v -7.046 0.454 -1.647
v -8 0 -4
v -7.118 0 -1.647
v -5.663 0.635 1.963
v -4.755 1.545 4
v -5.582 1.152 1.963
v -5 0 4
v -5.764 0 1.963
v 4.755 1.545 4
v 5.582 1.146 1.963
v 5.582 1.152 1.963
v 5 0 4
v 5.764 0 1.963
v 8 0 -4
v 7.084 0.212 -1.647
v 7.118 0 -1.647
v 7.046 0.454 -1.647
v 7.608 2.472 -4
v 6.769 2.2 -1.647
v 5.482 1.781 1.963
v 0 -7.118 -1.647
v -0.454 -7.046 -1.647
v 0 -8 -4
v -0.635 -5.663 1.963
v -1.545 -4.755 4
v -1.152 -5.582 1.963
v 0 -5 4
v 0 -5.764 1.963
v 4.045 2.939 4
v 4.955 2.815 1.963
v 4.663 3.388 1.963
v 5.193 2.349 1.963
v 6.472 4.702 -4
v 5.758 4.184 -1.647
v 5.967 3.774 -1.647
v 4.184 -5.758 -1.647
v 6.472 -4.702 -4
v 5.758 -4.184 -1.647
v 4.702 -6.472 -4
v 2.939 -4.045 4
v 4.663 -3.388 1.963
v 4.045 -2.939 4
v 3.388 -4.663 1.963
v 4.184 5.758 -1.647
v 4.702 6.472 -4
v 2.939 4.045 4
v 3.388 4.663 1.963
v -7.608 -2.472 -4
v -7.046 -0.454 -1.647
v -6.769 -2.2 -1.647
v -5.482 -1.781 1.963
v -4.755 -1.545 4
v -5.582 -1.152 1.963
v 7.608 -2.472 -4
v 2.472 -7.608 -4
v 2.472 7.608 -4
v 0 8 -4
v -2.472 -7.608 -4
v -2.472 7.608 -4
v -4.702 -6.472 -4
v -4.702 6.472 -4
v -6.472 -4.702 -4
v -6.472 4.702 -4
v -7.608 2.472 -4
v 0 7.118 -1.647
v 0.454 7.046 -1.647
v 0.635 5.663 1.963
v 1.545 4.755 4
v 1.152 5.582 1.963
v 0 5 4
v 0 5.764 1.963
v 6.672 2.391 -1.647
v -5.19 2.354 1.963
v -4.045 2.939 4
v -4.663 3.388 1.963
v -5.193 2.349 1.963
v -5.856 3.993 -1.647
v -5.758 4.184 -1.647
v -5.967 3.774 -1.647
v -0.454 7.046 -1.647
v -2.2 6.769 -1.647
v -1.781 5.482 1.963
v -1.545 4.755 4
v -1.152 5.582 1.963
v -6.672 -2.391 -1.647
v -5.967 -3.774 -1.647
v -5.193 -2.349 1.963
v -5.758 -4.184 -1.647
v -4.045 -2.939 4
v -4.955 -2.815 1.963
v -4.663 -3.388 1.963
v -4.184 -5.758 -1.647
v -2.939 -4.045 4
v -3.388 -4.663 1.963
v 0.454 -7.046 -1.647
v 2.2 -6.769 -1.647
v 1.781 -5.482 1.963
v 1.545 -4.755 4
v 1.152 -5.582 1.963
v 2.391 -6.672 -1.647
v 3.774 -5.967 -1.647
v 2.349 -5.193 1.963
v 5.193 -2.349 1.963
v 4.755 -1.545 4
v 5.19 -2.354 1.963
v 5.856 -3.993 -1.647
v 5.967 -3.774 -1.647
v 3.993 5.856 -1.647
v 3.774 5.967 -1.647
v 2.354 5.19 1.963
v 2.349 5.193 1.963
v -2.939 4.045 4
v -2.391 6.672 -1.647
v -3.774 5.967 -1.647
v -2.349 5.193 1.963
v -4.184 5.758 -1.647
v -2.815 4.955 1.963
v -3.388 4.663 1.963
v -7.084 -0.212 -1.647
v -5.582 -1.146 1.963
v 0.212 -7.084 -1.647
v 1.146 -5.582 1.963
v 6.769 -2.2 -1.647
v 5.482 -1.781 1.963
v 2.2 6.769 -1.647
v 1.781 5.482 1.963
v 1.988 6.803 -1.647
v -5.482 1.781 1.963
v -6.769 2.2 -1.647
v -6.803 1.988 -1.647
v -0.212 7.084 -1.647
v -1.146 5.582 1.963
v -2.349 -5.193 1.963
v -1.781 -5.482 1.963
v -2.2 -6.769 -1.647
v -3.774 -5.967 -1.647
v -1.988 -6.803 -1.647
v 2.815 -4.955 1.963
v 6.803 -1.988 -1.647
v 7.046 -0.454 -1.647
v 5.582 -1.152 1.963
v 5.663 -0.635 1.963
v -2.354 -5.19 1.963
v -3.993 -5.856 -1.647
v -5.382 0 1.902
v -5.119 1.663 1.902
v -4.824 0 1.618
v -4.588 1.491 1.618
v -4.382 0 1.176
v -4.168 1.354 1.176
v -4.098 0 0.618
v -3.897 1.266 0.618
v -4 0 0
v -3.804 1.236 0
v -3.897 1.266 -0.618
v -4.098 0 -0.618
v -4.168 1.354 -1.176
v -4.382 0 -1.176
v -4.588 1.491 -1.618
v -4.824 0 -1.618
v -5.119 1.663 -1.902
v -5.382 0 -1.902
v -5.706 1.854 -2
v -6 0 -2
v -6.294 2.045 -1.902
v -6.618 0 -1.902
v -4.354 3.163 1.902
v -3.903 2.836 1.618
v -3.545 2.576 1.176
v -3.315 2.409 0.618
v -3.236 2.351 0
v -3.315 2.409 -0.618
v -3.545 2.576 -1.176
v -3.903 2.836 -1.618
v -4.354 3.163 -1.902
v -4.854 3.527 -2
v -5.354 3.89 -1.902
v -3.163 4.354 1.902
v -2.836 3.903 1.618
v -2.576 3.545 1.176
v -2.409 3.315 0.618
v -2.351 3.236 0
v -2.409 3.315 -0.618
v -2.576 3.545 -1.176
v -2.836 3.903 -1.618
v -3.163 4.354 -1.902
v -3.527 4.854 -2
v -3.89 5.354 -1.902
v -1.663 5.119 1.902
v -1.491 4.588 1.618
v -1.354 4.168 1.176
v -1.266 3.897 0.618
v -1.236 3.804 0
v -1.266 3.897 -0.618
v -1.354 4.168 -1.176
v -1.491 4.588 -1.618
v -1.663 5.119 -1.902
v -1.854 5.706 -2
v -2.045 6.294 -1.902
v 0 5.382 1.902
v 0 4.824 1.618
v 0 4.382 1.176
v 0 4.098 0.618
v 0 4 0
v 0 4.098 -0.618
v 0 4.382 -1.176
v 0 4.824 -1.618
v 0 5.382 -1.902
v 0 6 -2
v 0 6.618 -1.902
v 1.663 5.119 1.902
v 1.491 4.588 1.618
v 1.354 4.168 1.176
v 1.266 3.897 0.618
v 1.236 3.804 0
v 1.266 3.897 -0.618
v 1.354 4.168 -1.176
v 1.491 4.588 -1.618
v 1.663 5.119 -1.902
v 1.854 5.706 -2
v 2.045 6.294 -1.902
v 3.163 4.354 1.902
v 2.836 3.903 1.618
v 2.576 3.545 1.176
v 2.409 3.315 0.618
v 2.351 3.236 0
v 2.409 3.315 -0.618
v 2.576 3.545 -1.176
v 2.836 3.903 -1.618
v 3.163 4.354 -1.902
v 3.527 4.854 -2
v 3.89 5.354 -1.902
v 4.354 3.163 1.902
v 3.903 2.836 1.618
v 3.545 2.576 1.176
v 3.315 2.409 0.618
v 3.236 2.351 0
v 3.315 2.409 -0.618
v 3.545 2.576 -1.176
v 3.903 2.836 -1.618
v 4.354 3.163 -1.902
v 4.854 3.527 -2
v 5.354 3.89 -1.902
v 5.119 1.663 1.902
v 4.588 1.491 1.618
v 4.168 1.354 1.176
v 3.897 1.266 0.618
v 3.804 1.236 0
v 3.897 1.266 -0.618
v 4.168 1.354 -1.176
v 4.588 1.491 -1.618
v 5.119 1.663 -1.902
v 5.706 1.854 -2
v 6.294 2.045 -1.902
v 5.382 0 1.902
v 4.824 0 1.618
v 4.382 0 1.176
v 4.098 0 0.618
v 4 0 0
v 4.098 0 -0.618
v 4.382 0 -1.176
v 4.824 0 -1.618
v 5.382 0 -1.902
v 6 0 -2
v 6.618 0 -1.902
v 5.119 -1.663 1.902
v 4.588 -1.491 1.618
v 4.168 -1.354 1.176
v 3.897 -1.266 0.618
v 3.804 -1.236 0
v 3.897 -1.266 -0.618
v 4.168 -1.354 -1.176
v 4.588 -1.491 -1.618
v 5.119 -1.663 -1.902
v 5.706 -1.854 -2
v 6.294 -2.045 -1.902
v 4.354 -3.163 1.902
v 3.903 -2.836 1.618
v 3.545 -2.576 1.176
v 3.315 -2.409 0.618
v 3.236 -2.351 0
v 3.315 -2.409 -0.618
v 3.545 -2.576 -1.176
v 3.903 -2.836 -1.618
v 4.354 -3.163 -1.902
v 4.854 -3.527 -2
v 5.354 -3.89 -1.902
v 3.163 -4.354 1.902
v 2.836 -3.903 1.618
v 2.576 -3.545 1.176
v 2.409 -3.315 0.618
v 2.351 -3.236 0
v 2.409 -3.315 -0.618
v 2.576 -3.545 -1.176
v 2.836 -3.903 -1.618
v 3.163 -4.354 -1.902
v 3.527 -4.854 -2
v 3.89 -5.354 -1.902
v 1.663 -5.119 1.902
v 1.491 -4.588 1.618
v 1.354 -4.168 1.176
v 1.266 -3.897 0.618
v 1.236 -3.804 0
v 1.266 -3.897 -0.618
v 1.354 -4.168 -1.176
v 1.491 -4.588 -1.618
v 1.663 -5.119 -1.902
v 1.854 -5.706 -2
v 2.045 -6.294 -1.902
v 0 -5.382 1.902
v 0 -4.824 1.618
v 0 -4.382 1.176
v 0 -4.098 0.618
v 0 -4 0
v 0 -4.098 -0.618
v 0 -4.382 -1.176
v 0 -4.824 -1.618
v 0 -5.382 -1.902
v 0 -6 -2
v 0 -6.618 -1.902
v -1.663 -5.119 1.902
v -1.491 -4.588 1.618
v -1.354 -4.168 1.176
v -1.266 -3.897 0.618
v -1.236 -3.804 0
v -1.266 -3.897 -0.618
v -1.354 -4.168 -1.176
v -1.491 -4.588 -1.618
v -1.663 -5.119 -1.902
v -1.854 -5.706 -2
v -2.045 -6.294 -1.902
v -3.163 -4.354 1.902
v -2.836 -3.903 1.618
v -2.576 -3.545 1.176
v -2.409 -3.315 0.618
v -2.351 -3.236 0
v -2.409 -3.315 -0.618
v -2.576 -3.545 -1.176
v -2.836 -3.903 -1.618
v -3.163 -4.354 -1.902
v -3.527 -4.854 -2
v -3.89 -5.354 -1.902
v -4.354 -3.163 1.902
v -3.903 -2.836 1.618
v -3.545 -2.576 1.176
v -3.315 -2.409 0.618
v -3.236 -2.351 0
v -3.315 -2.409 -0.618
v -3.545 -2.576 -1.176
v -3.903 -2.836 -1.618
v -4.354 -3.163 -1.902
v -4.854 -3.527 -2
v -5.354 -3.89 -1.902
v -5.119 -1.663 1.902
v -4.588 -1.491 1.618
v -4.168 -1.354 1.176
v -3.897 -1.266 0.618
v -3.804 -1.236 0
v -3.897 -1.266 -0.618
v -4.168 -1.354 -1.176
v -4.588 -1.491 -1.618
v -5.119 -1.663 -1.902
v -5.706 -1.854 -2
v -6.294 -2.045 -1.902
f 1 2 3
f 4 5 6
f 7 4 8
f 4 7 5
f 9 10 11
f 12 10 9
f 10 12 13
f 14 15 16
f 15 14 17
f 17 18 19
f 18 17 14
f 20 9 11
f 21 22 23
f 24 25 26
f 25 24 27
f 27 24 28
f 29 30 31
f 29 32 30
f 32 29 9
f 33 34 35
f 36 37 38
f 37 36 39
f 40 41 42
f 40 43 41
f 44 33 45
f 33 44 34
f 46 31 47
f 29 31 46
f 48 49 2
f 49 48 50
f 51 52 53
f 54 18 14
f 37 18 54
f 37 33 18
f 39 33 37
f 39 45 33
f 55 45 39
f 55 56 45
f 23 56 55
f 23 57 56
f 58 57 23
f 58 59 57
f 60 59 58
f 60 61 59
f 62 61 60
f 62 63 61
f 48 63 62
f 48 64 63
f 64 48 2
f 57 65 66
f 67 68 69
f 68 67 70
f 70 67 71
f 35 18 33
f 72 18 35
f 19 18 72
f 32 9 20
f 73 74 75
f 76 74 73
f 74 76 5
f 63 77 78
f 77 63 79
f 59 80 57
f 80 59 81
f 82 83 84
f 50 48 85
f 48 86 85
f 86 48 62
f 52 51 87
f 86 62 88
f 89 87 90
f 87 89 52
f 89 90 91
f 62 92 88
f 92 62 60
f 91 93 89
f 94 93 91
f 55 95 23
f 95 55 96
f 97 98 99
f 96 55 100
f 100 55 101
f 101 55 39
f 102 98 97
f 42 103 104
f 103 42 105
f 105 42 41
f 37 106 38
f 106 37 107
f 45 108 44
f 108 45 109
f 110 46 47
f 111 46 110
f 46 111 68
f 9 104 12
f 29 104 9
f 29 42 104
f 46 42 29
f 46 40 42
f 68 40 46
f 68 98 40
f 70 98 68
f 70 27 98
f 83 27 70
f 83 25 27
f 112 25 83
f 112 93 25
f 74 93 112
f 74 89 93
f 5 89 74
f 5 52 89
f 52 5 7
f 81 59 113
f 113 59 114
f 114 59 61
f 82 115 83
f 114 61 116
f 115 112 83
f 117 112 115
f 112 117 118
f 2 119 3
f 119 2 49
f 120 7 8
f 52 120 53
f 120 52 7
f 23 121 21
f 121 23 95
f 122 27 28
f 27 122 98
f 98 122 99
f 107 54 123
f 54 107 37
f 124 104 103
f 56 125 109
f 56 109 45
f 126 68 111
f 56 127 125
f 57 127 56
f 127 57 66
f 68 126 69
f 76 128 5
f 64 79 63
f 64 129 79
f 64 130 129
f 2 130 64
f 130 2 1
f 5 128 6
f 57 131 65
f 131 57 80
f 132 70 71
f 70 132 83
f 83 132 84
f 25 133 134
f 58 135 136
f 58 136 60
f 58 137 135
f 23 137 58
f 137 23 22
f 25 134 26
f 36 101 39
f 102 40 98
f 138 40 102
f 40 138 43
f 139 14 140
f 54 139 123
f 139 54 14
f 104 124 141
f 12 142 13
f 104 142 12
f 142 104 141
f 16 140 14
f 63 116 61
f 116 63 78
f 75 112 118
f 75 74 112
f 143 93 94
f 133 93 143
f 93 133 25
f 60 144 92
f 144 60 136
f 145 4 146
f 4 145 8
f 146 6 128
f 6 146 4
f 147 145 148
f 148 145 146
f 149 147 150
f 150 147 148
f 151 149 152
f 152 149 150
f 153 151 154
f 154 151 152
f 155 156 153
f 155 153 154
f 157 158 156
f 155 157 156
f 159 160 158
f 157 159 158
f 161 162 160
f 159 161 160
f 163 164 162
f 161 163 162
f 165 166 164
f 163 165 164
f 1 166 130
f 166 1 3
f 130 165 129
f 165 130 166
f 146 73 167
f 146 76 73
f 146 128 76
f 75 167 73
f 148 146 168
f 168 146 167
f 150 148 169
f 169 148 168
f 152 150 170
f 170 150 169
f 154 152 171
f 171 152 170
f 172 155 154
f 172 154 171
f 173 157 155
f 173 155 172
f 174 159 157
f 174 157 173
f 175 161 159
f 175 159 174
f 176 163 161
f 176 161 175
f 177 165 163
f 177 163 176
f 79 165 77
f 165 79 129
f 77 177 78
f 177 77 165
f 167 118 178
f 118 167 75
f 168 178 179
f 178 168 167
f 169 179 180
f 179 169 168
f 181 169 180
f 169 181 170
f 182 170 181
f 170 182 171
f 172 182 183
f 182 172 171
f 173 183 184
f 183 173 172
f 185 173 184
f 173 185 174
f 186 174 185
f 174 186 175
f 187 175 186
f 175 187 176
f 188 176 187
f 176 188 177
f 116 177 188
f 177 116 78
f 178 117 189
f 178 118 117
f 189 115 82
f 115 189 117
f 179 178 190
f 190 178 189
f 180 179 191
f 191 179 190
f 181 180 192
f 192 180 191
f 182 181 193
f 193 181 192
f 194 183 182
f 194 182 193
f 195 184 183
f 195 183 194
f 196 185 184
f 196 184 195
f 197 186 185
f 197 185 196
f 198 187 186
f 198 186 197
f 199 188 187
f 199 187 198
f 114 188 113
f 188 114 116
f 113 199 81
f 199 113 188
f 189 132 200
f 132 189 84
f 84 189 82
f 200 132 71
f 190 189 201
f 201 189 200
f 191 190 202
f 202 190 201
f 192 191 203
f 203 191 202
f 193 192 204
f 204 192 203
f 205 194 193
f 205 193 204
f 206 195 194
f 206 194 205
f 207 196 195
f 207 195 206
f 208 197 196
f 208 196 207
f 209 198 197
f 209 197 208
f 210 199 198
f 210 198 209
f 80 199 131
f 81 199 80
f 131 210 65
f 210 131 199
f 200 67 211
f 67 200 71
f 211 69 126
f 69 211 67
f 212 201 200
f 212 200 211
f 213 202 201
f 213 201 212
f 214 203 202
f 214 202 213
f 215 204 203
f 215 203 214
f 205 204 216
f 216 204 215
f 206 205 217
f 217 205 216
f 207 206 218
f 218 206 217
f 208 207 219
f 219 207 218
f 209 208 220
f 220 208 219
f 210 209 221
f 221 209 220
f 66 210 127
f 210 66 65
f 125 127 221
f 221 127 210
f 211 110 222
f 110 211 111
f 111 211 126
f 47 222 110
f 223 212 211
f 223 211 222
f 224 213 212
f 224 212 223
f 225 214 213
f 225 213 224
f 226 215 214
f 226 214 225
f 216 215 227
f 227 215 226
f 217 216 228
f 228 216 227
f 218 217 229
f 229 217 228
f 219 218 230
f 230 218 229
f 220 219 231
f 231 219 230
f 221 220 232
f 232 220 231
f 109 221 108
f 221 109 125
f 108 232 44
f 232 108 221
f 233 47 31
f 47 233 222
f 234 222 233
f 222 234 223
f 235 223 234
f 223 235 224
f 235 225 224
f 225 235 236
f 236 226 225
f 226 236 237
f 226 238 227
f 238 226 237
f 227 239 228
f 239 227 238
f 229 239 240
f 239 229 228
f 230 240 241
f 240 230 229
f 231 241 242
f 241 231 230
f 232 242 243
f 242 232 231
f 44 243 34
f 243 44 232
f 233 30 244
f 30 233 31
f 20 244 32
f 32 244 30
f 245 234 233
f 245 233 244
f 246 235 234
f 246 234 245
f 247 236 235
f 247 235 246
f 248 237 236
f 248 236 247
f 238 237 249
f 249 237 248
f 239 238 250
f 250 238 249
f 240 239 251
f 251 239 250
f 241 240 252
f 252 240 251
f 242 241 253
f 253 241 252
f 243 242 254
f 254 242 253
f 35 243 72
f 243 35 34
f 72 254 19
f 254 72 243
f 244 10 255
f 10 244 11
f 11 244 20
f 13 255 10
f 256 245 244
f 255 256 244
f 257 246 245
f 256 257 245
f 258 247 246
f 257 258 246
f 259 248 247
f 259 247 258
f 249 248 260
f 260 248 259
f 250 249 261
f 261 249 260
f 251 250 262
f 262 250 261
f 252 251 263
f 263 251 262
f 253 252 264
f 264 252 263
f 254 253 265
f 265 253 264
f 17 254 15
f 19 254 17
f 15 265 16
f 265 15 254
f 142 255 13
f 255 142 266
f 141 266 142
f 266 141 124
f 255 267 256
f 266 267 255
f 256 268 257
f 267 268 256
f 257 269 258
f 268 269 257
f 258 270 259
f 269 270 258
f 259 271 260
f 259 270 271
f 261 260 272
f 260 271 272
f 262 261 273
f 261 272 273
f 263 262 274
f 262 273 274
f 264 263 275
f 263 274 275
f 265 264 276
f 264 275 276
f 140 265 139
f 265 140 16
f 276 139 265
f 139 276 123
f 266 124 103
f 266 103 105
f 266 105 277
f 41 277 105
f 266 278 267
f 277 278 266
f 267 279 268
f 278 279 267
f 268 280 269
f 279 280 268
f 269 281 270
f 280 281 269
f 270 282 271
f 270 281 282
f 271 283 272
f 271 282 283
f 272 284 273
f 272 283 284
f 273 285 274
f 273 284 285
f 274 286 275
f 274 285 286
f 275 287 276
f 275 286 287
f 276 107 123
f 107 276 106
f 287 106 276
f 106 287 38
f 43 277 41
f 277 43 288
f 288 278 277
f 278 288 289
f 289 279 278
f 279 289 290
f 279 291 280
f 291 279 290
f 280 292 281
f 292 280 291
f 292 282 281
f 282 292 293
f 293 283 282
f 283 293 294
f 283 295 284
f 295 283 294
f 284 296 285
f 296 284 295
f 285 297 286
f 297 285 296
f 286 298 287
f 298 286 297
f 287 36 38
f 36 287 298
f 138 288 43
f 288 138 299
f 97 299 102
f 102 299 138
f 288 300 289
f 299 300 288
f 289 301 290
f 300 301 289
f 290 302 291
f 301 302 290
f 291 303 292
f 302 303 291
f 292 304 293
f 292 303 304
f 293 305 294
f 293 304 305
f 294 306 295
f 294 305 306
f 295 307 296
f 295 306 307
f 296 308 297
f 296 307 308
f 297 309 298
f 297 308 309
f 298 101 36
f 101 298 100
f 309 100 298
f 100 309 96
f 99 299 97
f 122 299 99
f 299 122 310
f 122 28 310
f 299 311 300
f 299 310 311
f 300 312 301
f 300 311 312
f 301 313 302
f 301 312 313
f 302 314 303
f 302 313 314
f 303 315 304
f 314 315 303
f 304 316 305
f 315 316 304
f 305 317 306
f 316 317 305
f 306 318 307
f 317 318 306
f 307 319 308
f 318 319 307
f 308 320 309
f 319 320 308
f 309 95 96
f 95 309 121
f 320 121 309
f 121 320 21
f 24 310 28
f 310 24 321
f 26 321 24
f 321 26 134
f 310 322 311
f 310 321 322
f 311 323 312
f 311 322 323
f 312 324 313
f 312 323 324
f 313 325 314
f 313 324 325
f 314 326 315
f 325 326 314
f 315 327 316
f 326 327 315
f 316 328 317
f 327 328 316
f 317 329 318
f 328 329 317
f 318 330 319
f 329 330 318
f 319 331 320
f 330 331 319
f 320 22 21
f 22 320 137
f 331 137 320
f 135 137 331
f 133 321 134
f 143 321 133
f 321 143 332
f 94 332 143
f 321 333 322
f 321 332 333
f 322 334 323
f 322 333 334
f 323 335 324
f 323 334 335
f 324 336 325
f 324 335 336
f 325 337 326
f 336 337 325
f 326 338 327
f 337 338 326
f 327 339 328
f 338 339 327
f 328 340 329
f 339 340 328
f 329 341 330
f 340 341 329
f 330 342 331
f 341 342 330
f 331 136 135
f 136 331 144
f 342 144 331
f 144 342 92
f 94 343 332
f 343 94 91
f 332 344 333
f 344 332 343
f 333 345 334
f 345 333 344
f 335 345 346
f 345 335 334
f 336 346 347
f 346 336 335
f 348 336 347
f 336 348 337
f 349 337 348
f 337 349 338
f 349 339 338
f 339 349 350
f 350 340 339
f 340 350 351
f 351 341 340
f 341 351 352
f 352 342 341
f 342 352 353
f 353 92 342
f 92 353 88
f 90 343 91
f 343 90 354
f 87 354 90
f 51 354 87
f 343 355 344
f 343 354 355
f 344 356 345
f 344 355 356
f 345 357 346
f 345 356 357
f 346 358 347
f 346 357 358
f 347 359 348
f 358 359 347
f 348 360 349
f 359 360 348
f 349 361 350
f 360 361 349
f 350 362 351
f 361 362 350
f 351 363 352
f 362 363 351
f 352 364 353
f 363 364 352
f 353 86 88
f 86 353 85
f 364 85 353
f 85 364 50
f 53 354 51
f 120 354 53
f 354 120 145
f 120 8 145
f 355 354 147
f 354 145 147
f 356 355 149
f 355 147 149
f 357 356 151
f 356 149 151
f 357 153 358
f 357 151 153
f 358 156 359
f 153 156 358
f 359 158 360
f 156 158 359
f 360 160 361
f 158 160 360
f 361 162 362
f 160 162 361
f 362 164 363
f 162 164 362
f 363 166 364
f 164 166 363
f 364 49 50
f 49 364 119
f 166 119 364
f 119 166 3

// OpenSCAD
$fn=20;
radius_bar =2; //mm
bend_radius =4; //long wheel

difference() {
    cylinder(r1=8, r2=5,h=8 ,center=true);
    
    rotate_extrude()
    translate([bend_radius + radius_bar, 0, 0])
        circle(r=radius_bar);
}
